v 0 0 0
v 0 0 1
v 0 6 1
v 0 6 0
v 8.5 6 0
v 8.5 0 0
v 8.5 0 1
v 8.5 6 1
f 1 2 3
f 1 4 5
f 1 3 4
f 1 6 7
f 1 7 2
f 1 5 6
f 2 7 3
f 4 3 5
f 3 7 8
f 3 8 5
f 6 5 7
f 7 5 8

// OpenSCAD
/* Warning, this is a very basic generator with a lot of approximation 
input data : [VDFN, QWB, 8.5x6.0x1.0mm, 24, , C, C04-21554C]
generated by com.zoubworld.electronics.cad.model3d.Basic
Date : Sun Feb 15 10:50:49 CET 2026
*/

//body
color("black")
translate([0,0,0])
cube([8.5,6.0,1.0], center=false);
